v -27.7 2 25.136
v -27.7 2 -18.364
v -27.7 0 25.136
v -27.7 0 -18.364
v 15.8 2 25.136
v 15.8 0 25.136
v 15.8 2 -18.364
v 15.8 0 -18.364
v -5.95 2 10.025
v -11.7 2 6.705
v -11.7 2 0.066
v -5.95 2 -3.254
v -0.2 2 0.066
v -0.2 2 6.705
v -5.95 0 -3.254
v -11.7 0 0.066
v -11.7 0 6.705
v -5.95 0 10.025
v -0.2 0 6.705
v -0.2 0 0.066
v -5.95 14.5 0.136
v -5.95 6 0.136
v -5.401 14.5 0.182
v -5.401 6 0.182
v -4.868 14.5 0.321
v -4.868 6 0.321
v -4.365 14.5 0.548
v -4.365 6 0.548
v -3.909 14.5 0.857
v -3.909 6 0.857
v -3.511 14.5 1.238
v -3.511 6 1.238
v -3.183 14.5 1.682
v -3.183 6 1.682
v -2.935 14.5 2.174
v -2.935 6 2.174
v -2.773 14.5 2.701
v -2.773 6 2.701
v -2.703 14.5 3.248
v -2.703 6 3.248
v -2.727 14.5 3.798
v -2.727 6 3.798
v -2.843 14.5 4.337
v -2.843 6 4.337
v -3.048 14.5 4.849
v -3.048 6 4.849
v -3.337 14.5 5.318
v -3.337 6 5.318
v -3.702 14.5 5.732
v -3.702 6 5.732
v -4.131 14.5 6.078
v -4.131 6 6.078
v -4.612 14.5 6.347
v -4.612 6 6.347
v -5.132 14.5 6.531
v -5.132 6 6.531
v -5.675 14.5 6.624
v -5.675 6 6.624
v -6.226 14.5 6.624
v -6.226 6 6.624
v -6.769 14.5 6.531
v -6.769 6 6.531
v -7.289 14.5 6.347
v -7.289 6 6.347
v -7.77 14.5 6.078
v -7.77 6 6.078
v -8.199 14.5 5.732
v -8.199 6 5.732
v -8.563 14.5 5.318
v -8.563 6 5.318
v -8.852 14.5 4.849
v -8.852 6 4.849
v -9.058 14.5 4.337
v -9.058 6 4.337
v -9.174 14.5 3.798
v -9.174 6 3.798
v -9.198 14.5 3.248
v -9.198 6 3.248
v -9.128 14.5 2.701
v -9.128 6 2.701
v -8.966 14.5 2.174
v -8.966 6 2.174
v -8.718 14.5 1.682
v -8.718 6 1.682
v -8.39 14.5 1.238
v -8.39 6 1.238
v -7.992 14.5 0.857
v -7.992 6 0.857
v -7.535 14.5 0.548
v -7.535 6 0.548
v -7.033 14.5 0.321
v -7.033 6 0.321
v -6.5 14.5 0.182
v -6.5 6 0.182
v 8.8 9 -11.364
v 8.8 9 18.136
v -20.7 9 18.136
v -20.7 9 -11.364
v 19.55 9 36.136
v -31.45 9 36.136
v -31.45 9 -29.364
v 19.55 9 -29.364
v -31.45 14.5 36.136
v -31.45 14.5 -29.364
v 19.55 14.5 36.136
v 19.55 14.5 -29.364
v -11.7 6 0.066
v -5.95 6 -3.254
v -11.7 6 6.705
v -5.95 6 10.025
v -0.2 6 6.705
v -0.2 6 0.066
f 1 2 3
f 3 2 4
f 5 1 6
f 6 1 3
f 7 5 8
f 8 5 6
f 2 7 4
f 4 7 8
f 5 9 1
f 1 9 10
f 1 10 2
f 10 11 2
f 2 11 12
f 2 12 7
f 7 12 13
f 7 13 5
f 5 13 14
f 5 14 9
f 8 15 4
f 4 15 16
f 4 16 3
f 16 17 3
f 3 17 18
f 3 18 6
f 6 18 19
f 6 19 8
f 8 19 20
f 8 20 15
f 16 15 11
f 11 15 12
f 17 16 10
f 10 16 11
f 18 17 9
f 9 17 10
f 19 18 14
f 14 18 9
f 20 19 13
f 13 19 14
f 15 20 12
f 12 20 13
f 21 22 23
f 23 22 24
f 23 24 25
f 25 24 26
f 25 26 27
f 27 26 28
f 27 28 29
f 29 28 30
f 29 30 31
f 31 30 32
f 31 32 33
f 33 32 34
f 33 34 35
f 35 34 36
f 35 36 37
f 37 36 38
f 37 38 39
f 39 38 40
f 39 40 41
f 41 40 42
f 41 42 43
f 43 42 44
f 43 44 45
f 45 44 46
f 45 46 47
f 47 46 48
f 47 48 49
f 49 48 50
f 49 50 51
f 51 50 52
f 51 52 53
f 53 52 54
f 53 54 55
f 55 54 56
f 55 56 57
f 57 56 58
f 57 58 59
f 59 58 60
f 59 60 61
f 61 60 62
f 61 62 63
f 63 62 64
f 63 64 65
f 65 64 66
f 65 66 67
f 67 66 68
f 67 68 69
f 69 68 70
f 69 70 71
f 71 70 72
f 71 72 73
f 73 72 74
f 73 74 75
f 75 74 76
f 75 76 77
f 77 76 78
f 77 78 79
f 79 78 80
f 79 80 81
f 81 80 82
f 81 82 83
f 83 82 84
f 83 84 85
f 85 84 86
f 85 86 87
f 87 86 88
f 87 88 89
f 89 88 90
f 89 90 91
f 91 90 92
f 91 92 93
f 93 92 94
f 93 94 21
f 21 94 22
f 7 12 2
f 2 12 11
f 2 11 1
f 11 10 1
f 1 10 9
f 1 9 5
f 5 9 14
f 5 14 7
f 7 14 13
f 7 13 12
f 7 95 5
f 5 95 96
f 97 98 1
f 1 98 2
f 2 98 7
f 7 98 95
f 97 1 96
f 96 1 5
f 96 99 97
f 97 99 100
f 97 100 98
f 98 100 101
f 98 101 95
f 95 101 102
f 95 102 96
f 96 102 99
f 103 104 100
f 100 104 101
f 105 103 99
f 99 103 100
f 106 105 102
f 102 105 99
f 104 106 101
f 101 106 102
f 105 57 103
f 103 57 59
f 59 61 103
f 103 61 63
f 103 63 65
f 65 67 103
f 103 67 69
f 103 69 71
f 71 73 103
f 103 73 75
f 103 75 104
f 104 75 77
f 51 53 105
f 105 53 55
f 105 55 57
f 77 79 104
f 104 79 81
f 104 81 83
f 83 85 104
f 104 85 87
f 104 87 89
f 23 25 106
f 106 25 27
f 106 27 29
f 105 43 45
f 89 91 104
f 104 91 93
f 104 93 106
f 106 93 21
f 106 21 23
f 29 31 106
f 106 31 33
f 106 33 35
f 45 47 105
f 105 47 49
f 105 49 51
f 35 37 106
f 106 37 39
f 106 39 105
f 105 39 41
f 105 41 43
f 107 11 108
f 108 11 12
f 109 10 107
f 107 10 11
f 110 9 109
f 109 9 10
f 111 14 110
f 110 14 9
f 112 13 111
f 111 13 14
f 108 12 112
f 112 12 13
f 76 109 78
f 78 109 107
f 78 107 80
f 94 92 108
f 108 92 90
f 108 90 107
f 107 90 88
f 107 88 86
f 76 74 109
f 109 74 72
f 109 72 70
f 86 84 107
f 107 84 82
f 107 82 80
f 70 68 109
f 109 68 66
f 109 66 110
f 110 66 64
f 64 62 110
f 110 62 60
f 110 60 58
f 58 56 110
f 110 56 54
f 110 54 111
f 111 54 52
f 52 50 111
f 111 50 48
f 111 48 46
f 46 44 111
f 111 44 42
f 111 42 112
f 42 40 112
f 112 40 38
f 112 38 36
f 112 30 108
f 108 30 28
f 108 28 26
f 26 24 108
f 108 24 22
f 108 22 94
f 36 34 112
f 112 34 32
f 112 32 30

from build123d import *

# Parameters (mm, degrees)
SKETCH1_W           = 43.5
SKETCH1_H           = 43.5
BOSS_EXTRUDE1_DEPTH = 2
SKETCH2_W           = 43.5
SKETCH2_H           = 43.5
BOSS_EXTRUDE3_DEPTH = 7
CUT_EXTRUDE1_DEPTH  = 44.5
CUT_EXTRUDE2_DEPTH  = 44.5
SKETCH7_W           = 51
SKETCH7_H           = 65.5
BOSS_EXTRUDE4_DEPTH = 5.5
SKETCH8_R           = 3.25
CUT_EXTRUDE3_DEPTH  = 15.5
CUT_EXTRUDE4_DEPTH  = 6


with BuildPart() as part:
    # Sketch1 → Boss-Extrude1 (new body)
    with BuildSketch(Plane(origin=(0, 0, 0), x_dir=(1, 0, 0), z_dir=(0, 1, 0))):
        with Locations((-5.950471698, -3.385613208)):
            Rectangle(SKETCH1_W, SKETCH1_H)
    extrude(amount=BOSS_EXTRUDE1_DEPTH)


with BuildPart() as body_2:
    # Sketch2 → Boss-Extrude3 (new body)
    with BuildSketch(Plane(origin=(0, 2, 0), x_dir=(1, 0, 0), z_dir=(0, 1, 0))):
        with Locations((-5.950471698, -3.385613208)):
            Rectangle(SKETCH2_W, SKETCH2_H)
    extrude(amount=BOSS_EXTRUDE3_DEPTH)

    # Sketch5 → Cut-Extrude1 (cut, through all)
    with BuildSketch(Plane.XY.offset(25.135613208)):
        Polygon((15.799528302, 9), (8.799528302, 9), (15.799528302, 2), align=None)
        Polygon((-27.700471698, 9), (-27.700471698, 2), (-20.700471698, 9), align=None)
    extrude(amount=-CUT_EXTRUDE1_DEPTH, mode=Mode.SUBTRACT)

    # Sketch6 → Cut-Extrude2 (cut, through all)
    with BuildSketch(Plane(origin=(15.799528302, 0, 0), x_dir=(0, 0, -1), z_dir=(1, 0, 0))):
        Polygon((-25.135613208, 2), (-25.135613208, 9), (-18.135613208, 9), align=None)
        Polygon((18.364386792, 2), (18.364386792, 9), (11.364386792, 9), align=None)
    extrude(amount=-CUT_EXTRUDE2_DEPTH, mode=Mode.SUBTRACT)

    # Sketch7 → Boss-Extrude4 (add)
    with BuildSketch(Plane(origin=(0, 9, 0), x_dir=(1, 0, 0), z_dir=(0, 1, 0))):
        with Locations((-5.950471698, -3.385613208)):
            Rectangle(SKETCH7_W, SKETCH7_H)
    extrude(amount=BOSS_EXTRUDE4_DEPTH)


with BuildPart() as cut_extrude3_tool:
    # Sketch8 → Cut-Extrude3 (new body, through all)
    with BuildSketch(Plane.XZ):
        with Locations((-5.950471698, 3.385613208)):
            Circle(SKETCH8_R)
    extrude(amount=-CUT_EXTRUDE3_DEPTH)


with BuildPart() as part_1:
    add(part.part)

    # Cut-Extrude3: cut by cut_extrude3_tool
    add(cut_extrude3_tool.part, mode=Mode.SUBTRACT)


with BuildPart() as body_2_1:
    add(body_2.part)

    # Cut-Extrude3: cut by cut_extrude3_tool
    add(cut_extrude3_tool.part, mode=Mode.SUBTRACT)


with BuildPart() as cut_extrude4_tool:
    # Sketch9 → Cut-Extrude4 (new body)
    with BuildSketch(Plane.XZ):
        Polygon((-5.950471698, -3.253914888), (-0.200471698, 0.06584916), (-0.200471698, 6.705377255), (-5.950471698, 10.025141303), (-11.700471698, 6.705377255), (-11.700471698, 0.06584916), align=None)
    extrude(amount=-CUT_EXTRUDE4_DEPTH)


with BuildPart() as part_2:
    add(part_1.part)

    # Cut-Extrude4: cut by cut_extrude4_tool
    add(cut_extrude4_tool.part, mode=Mode.SUBTRACT)


with BuildPart() as body_2_2:
    add(body_2_1.part)

    # Cut-Extrude4: cut by cut_extrude4_tool
    add(cut_extrude4_tool.part, mode=Mode.SUBTRACT)


solid = Compound([part_2.part, body_2_2.part])
